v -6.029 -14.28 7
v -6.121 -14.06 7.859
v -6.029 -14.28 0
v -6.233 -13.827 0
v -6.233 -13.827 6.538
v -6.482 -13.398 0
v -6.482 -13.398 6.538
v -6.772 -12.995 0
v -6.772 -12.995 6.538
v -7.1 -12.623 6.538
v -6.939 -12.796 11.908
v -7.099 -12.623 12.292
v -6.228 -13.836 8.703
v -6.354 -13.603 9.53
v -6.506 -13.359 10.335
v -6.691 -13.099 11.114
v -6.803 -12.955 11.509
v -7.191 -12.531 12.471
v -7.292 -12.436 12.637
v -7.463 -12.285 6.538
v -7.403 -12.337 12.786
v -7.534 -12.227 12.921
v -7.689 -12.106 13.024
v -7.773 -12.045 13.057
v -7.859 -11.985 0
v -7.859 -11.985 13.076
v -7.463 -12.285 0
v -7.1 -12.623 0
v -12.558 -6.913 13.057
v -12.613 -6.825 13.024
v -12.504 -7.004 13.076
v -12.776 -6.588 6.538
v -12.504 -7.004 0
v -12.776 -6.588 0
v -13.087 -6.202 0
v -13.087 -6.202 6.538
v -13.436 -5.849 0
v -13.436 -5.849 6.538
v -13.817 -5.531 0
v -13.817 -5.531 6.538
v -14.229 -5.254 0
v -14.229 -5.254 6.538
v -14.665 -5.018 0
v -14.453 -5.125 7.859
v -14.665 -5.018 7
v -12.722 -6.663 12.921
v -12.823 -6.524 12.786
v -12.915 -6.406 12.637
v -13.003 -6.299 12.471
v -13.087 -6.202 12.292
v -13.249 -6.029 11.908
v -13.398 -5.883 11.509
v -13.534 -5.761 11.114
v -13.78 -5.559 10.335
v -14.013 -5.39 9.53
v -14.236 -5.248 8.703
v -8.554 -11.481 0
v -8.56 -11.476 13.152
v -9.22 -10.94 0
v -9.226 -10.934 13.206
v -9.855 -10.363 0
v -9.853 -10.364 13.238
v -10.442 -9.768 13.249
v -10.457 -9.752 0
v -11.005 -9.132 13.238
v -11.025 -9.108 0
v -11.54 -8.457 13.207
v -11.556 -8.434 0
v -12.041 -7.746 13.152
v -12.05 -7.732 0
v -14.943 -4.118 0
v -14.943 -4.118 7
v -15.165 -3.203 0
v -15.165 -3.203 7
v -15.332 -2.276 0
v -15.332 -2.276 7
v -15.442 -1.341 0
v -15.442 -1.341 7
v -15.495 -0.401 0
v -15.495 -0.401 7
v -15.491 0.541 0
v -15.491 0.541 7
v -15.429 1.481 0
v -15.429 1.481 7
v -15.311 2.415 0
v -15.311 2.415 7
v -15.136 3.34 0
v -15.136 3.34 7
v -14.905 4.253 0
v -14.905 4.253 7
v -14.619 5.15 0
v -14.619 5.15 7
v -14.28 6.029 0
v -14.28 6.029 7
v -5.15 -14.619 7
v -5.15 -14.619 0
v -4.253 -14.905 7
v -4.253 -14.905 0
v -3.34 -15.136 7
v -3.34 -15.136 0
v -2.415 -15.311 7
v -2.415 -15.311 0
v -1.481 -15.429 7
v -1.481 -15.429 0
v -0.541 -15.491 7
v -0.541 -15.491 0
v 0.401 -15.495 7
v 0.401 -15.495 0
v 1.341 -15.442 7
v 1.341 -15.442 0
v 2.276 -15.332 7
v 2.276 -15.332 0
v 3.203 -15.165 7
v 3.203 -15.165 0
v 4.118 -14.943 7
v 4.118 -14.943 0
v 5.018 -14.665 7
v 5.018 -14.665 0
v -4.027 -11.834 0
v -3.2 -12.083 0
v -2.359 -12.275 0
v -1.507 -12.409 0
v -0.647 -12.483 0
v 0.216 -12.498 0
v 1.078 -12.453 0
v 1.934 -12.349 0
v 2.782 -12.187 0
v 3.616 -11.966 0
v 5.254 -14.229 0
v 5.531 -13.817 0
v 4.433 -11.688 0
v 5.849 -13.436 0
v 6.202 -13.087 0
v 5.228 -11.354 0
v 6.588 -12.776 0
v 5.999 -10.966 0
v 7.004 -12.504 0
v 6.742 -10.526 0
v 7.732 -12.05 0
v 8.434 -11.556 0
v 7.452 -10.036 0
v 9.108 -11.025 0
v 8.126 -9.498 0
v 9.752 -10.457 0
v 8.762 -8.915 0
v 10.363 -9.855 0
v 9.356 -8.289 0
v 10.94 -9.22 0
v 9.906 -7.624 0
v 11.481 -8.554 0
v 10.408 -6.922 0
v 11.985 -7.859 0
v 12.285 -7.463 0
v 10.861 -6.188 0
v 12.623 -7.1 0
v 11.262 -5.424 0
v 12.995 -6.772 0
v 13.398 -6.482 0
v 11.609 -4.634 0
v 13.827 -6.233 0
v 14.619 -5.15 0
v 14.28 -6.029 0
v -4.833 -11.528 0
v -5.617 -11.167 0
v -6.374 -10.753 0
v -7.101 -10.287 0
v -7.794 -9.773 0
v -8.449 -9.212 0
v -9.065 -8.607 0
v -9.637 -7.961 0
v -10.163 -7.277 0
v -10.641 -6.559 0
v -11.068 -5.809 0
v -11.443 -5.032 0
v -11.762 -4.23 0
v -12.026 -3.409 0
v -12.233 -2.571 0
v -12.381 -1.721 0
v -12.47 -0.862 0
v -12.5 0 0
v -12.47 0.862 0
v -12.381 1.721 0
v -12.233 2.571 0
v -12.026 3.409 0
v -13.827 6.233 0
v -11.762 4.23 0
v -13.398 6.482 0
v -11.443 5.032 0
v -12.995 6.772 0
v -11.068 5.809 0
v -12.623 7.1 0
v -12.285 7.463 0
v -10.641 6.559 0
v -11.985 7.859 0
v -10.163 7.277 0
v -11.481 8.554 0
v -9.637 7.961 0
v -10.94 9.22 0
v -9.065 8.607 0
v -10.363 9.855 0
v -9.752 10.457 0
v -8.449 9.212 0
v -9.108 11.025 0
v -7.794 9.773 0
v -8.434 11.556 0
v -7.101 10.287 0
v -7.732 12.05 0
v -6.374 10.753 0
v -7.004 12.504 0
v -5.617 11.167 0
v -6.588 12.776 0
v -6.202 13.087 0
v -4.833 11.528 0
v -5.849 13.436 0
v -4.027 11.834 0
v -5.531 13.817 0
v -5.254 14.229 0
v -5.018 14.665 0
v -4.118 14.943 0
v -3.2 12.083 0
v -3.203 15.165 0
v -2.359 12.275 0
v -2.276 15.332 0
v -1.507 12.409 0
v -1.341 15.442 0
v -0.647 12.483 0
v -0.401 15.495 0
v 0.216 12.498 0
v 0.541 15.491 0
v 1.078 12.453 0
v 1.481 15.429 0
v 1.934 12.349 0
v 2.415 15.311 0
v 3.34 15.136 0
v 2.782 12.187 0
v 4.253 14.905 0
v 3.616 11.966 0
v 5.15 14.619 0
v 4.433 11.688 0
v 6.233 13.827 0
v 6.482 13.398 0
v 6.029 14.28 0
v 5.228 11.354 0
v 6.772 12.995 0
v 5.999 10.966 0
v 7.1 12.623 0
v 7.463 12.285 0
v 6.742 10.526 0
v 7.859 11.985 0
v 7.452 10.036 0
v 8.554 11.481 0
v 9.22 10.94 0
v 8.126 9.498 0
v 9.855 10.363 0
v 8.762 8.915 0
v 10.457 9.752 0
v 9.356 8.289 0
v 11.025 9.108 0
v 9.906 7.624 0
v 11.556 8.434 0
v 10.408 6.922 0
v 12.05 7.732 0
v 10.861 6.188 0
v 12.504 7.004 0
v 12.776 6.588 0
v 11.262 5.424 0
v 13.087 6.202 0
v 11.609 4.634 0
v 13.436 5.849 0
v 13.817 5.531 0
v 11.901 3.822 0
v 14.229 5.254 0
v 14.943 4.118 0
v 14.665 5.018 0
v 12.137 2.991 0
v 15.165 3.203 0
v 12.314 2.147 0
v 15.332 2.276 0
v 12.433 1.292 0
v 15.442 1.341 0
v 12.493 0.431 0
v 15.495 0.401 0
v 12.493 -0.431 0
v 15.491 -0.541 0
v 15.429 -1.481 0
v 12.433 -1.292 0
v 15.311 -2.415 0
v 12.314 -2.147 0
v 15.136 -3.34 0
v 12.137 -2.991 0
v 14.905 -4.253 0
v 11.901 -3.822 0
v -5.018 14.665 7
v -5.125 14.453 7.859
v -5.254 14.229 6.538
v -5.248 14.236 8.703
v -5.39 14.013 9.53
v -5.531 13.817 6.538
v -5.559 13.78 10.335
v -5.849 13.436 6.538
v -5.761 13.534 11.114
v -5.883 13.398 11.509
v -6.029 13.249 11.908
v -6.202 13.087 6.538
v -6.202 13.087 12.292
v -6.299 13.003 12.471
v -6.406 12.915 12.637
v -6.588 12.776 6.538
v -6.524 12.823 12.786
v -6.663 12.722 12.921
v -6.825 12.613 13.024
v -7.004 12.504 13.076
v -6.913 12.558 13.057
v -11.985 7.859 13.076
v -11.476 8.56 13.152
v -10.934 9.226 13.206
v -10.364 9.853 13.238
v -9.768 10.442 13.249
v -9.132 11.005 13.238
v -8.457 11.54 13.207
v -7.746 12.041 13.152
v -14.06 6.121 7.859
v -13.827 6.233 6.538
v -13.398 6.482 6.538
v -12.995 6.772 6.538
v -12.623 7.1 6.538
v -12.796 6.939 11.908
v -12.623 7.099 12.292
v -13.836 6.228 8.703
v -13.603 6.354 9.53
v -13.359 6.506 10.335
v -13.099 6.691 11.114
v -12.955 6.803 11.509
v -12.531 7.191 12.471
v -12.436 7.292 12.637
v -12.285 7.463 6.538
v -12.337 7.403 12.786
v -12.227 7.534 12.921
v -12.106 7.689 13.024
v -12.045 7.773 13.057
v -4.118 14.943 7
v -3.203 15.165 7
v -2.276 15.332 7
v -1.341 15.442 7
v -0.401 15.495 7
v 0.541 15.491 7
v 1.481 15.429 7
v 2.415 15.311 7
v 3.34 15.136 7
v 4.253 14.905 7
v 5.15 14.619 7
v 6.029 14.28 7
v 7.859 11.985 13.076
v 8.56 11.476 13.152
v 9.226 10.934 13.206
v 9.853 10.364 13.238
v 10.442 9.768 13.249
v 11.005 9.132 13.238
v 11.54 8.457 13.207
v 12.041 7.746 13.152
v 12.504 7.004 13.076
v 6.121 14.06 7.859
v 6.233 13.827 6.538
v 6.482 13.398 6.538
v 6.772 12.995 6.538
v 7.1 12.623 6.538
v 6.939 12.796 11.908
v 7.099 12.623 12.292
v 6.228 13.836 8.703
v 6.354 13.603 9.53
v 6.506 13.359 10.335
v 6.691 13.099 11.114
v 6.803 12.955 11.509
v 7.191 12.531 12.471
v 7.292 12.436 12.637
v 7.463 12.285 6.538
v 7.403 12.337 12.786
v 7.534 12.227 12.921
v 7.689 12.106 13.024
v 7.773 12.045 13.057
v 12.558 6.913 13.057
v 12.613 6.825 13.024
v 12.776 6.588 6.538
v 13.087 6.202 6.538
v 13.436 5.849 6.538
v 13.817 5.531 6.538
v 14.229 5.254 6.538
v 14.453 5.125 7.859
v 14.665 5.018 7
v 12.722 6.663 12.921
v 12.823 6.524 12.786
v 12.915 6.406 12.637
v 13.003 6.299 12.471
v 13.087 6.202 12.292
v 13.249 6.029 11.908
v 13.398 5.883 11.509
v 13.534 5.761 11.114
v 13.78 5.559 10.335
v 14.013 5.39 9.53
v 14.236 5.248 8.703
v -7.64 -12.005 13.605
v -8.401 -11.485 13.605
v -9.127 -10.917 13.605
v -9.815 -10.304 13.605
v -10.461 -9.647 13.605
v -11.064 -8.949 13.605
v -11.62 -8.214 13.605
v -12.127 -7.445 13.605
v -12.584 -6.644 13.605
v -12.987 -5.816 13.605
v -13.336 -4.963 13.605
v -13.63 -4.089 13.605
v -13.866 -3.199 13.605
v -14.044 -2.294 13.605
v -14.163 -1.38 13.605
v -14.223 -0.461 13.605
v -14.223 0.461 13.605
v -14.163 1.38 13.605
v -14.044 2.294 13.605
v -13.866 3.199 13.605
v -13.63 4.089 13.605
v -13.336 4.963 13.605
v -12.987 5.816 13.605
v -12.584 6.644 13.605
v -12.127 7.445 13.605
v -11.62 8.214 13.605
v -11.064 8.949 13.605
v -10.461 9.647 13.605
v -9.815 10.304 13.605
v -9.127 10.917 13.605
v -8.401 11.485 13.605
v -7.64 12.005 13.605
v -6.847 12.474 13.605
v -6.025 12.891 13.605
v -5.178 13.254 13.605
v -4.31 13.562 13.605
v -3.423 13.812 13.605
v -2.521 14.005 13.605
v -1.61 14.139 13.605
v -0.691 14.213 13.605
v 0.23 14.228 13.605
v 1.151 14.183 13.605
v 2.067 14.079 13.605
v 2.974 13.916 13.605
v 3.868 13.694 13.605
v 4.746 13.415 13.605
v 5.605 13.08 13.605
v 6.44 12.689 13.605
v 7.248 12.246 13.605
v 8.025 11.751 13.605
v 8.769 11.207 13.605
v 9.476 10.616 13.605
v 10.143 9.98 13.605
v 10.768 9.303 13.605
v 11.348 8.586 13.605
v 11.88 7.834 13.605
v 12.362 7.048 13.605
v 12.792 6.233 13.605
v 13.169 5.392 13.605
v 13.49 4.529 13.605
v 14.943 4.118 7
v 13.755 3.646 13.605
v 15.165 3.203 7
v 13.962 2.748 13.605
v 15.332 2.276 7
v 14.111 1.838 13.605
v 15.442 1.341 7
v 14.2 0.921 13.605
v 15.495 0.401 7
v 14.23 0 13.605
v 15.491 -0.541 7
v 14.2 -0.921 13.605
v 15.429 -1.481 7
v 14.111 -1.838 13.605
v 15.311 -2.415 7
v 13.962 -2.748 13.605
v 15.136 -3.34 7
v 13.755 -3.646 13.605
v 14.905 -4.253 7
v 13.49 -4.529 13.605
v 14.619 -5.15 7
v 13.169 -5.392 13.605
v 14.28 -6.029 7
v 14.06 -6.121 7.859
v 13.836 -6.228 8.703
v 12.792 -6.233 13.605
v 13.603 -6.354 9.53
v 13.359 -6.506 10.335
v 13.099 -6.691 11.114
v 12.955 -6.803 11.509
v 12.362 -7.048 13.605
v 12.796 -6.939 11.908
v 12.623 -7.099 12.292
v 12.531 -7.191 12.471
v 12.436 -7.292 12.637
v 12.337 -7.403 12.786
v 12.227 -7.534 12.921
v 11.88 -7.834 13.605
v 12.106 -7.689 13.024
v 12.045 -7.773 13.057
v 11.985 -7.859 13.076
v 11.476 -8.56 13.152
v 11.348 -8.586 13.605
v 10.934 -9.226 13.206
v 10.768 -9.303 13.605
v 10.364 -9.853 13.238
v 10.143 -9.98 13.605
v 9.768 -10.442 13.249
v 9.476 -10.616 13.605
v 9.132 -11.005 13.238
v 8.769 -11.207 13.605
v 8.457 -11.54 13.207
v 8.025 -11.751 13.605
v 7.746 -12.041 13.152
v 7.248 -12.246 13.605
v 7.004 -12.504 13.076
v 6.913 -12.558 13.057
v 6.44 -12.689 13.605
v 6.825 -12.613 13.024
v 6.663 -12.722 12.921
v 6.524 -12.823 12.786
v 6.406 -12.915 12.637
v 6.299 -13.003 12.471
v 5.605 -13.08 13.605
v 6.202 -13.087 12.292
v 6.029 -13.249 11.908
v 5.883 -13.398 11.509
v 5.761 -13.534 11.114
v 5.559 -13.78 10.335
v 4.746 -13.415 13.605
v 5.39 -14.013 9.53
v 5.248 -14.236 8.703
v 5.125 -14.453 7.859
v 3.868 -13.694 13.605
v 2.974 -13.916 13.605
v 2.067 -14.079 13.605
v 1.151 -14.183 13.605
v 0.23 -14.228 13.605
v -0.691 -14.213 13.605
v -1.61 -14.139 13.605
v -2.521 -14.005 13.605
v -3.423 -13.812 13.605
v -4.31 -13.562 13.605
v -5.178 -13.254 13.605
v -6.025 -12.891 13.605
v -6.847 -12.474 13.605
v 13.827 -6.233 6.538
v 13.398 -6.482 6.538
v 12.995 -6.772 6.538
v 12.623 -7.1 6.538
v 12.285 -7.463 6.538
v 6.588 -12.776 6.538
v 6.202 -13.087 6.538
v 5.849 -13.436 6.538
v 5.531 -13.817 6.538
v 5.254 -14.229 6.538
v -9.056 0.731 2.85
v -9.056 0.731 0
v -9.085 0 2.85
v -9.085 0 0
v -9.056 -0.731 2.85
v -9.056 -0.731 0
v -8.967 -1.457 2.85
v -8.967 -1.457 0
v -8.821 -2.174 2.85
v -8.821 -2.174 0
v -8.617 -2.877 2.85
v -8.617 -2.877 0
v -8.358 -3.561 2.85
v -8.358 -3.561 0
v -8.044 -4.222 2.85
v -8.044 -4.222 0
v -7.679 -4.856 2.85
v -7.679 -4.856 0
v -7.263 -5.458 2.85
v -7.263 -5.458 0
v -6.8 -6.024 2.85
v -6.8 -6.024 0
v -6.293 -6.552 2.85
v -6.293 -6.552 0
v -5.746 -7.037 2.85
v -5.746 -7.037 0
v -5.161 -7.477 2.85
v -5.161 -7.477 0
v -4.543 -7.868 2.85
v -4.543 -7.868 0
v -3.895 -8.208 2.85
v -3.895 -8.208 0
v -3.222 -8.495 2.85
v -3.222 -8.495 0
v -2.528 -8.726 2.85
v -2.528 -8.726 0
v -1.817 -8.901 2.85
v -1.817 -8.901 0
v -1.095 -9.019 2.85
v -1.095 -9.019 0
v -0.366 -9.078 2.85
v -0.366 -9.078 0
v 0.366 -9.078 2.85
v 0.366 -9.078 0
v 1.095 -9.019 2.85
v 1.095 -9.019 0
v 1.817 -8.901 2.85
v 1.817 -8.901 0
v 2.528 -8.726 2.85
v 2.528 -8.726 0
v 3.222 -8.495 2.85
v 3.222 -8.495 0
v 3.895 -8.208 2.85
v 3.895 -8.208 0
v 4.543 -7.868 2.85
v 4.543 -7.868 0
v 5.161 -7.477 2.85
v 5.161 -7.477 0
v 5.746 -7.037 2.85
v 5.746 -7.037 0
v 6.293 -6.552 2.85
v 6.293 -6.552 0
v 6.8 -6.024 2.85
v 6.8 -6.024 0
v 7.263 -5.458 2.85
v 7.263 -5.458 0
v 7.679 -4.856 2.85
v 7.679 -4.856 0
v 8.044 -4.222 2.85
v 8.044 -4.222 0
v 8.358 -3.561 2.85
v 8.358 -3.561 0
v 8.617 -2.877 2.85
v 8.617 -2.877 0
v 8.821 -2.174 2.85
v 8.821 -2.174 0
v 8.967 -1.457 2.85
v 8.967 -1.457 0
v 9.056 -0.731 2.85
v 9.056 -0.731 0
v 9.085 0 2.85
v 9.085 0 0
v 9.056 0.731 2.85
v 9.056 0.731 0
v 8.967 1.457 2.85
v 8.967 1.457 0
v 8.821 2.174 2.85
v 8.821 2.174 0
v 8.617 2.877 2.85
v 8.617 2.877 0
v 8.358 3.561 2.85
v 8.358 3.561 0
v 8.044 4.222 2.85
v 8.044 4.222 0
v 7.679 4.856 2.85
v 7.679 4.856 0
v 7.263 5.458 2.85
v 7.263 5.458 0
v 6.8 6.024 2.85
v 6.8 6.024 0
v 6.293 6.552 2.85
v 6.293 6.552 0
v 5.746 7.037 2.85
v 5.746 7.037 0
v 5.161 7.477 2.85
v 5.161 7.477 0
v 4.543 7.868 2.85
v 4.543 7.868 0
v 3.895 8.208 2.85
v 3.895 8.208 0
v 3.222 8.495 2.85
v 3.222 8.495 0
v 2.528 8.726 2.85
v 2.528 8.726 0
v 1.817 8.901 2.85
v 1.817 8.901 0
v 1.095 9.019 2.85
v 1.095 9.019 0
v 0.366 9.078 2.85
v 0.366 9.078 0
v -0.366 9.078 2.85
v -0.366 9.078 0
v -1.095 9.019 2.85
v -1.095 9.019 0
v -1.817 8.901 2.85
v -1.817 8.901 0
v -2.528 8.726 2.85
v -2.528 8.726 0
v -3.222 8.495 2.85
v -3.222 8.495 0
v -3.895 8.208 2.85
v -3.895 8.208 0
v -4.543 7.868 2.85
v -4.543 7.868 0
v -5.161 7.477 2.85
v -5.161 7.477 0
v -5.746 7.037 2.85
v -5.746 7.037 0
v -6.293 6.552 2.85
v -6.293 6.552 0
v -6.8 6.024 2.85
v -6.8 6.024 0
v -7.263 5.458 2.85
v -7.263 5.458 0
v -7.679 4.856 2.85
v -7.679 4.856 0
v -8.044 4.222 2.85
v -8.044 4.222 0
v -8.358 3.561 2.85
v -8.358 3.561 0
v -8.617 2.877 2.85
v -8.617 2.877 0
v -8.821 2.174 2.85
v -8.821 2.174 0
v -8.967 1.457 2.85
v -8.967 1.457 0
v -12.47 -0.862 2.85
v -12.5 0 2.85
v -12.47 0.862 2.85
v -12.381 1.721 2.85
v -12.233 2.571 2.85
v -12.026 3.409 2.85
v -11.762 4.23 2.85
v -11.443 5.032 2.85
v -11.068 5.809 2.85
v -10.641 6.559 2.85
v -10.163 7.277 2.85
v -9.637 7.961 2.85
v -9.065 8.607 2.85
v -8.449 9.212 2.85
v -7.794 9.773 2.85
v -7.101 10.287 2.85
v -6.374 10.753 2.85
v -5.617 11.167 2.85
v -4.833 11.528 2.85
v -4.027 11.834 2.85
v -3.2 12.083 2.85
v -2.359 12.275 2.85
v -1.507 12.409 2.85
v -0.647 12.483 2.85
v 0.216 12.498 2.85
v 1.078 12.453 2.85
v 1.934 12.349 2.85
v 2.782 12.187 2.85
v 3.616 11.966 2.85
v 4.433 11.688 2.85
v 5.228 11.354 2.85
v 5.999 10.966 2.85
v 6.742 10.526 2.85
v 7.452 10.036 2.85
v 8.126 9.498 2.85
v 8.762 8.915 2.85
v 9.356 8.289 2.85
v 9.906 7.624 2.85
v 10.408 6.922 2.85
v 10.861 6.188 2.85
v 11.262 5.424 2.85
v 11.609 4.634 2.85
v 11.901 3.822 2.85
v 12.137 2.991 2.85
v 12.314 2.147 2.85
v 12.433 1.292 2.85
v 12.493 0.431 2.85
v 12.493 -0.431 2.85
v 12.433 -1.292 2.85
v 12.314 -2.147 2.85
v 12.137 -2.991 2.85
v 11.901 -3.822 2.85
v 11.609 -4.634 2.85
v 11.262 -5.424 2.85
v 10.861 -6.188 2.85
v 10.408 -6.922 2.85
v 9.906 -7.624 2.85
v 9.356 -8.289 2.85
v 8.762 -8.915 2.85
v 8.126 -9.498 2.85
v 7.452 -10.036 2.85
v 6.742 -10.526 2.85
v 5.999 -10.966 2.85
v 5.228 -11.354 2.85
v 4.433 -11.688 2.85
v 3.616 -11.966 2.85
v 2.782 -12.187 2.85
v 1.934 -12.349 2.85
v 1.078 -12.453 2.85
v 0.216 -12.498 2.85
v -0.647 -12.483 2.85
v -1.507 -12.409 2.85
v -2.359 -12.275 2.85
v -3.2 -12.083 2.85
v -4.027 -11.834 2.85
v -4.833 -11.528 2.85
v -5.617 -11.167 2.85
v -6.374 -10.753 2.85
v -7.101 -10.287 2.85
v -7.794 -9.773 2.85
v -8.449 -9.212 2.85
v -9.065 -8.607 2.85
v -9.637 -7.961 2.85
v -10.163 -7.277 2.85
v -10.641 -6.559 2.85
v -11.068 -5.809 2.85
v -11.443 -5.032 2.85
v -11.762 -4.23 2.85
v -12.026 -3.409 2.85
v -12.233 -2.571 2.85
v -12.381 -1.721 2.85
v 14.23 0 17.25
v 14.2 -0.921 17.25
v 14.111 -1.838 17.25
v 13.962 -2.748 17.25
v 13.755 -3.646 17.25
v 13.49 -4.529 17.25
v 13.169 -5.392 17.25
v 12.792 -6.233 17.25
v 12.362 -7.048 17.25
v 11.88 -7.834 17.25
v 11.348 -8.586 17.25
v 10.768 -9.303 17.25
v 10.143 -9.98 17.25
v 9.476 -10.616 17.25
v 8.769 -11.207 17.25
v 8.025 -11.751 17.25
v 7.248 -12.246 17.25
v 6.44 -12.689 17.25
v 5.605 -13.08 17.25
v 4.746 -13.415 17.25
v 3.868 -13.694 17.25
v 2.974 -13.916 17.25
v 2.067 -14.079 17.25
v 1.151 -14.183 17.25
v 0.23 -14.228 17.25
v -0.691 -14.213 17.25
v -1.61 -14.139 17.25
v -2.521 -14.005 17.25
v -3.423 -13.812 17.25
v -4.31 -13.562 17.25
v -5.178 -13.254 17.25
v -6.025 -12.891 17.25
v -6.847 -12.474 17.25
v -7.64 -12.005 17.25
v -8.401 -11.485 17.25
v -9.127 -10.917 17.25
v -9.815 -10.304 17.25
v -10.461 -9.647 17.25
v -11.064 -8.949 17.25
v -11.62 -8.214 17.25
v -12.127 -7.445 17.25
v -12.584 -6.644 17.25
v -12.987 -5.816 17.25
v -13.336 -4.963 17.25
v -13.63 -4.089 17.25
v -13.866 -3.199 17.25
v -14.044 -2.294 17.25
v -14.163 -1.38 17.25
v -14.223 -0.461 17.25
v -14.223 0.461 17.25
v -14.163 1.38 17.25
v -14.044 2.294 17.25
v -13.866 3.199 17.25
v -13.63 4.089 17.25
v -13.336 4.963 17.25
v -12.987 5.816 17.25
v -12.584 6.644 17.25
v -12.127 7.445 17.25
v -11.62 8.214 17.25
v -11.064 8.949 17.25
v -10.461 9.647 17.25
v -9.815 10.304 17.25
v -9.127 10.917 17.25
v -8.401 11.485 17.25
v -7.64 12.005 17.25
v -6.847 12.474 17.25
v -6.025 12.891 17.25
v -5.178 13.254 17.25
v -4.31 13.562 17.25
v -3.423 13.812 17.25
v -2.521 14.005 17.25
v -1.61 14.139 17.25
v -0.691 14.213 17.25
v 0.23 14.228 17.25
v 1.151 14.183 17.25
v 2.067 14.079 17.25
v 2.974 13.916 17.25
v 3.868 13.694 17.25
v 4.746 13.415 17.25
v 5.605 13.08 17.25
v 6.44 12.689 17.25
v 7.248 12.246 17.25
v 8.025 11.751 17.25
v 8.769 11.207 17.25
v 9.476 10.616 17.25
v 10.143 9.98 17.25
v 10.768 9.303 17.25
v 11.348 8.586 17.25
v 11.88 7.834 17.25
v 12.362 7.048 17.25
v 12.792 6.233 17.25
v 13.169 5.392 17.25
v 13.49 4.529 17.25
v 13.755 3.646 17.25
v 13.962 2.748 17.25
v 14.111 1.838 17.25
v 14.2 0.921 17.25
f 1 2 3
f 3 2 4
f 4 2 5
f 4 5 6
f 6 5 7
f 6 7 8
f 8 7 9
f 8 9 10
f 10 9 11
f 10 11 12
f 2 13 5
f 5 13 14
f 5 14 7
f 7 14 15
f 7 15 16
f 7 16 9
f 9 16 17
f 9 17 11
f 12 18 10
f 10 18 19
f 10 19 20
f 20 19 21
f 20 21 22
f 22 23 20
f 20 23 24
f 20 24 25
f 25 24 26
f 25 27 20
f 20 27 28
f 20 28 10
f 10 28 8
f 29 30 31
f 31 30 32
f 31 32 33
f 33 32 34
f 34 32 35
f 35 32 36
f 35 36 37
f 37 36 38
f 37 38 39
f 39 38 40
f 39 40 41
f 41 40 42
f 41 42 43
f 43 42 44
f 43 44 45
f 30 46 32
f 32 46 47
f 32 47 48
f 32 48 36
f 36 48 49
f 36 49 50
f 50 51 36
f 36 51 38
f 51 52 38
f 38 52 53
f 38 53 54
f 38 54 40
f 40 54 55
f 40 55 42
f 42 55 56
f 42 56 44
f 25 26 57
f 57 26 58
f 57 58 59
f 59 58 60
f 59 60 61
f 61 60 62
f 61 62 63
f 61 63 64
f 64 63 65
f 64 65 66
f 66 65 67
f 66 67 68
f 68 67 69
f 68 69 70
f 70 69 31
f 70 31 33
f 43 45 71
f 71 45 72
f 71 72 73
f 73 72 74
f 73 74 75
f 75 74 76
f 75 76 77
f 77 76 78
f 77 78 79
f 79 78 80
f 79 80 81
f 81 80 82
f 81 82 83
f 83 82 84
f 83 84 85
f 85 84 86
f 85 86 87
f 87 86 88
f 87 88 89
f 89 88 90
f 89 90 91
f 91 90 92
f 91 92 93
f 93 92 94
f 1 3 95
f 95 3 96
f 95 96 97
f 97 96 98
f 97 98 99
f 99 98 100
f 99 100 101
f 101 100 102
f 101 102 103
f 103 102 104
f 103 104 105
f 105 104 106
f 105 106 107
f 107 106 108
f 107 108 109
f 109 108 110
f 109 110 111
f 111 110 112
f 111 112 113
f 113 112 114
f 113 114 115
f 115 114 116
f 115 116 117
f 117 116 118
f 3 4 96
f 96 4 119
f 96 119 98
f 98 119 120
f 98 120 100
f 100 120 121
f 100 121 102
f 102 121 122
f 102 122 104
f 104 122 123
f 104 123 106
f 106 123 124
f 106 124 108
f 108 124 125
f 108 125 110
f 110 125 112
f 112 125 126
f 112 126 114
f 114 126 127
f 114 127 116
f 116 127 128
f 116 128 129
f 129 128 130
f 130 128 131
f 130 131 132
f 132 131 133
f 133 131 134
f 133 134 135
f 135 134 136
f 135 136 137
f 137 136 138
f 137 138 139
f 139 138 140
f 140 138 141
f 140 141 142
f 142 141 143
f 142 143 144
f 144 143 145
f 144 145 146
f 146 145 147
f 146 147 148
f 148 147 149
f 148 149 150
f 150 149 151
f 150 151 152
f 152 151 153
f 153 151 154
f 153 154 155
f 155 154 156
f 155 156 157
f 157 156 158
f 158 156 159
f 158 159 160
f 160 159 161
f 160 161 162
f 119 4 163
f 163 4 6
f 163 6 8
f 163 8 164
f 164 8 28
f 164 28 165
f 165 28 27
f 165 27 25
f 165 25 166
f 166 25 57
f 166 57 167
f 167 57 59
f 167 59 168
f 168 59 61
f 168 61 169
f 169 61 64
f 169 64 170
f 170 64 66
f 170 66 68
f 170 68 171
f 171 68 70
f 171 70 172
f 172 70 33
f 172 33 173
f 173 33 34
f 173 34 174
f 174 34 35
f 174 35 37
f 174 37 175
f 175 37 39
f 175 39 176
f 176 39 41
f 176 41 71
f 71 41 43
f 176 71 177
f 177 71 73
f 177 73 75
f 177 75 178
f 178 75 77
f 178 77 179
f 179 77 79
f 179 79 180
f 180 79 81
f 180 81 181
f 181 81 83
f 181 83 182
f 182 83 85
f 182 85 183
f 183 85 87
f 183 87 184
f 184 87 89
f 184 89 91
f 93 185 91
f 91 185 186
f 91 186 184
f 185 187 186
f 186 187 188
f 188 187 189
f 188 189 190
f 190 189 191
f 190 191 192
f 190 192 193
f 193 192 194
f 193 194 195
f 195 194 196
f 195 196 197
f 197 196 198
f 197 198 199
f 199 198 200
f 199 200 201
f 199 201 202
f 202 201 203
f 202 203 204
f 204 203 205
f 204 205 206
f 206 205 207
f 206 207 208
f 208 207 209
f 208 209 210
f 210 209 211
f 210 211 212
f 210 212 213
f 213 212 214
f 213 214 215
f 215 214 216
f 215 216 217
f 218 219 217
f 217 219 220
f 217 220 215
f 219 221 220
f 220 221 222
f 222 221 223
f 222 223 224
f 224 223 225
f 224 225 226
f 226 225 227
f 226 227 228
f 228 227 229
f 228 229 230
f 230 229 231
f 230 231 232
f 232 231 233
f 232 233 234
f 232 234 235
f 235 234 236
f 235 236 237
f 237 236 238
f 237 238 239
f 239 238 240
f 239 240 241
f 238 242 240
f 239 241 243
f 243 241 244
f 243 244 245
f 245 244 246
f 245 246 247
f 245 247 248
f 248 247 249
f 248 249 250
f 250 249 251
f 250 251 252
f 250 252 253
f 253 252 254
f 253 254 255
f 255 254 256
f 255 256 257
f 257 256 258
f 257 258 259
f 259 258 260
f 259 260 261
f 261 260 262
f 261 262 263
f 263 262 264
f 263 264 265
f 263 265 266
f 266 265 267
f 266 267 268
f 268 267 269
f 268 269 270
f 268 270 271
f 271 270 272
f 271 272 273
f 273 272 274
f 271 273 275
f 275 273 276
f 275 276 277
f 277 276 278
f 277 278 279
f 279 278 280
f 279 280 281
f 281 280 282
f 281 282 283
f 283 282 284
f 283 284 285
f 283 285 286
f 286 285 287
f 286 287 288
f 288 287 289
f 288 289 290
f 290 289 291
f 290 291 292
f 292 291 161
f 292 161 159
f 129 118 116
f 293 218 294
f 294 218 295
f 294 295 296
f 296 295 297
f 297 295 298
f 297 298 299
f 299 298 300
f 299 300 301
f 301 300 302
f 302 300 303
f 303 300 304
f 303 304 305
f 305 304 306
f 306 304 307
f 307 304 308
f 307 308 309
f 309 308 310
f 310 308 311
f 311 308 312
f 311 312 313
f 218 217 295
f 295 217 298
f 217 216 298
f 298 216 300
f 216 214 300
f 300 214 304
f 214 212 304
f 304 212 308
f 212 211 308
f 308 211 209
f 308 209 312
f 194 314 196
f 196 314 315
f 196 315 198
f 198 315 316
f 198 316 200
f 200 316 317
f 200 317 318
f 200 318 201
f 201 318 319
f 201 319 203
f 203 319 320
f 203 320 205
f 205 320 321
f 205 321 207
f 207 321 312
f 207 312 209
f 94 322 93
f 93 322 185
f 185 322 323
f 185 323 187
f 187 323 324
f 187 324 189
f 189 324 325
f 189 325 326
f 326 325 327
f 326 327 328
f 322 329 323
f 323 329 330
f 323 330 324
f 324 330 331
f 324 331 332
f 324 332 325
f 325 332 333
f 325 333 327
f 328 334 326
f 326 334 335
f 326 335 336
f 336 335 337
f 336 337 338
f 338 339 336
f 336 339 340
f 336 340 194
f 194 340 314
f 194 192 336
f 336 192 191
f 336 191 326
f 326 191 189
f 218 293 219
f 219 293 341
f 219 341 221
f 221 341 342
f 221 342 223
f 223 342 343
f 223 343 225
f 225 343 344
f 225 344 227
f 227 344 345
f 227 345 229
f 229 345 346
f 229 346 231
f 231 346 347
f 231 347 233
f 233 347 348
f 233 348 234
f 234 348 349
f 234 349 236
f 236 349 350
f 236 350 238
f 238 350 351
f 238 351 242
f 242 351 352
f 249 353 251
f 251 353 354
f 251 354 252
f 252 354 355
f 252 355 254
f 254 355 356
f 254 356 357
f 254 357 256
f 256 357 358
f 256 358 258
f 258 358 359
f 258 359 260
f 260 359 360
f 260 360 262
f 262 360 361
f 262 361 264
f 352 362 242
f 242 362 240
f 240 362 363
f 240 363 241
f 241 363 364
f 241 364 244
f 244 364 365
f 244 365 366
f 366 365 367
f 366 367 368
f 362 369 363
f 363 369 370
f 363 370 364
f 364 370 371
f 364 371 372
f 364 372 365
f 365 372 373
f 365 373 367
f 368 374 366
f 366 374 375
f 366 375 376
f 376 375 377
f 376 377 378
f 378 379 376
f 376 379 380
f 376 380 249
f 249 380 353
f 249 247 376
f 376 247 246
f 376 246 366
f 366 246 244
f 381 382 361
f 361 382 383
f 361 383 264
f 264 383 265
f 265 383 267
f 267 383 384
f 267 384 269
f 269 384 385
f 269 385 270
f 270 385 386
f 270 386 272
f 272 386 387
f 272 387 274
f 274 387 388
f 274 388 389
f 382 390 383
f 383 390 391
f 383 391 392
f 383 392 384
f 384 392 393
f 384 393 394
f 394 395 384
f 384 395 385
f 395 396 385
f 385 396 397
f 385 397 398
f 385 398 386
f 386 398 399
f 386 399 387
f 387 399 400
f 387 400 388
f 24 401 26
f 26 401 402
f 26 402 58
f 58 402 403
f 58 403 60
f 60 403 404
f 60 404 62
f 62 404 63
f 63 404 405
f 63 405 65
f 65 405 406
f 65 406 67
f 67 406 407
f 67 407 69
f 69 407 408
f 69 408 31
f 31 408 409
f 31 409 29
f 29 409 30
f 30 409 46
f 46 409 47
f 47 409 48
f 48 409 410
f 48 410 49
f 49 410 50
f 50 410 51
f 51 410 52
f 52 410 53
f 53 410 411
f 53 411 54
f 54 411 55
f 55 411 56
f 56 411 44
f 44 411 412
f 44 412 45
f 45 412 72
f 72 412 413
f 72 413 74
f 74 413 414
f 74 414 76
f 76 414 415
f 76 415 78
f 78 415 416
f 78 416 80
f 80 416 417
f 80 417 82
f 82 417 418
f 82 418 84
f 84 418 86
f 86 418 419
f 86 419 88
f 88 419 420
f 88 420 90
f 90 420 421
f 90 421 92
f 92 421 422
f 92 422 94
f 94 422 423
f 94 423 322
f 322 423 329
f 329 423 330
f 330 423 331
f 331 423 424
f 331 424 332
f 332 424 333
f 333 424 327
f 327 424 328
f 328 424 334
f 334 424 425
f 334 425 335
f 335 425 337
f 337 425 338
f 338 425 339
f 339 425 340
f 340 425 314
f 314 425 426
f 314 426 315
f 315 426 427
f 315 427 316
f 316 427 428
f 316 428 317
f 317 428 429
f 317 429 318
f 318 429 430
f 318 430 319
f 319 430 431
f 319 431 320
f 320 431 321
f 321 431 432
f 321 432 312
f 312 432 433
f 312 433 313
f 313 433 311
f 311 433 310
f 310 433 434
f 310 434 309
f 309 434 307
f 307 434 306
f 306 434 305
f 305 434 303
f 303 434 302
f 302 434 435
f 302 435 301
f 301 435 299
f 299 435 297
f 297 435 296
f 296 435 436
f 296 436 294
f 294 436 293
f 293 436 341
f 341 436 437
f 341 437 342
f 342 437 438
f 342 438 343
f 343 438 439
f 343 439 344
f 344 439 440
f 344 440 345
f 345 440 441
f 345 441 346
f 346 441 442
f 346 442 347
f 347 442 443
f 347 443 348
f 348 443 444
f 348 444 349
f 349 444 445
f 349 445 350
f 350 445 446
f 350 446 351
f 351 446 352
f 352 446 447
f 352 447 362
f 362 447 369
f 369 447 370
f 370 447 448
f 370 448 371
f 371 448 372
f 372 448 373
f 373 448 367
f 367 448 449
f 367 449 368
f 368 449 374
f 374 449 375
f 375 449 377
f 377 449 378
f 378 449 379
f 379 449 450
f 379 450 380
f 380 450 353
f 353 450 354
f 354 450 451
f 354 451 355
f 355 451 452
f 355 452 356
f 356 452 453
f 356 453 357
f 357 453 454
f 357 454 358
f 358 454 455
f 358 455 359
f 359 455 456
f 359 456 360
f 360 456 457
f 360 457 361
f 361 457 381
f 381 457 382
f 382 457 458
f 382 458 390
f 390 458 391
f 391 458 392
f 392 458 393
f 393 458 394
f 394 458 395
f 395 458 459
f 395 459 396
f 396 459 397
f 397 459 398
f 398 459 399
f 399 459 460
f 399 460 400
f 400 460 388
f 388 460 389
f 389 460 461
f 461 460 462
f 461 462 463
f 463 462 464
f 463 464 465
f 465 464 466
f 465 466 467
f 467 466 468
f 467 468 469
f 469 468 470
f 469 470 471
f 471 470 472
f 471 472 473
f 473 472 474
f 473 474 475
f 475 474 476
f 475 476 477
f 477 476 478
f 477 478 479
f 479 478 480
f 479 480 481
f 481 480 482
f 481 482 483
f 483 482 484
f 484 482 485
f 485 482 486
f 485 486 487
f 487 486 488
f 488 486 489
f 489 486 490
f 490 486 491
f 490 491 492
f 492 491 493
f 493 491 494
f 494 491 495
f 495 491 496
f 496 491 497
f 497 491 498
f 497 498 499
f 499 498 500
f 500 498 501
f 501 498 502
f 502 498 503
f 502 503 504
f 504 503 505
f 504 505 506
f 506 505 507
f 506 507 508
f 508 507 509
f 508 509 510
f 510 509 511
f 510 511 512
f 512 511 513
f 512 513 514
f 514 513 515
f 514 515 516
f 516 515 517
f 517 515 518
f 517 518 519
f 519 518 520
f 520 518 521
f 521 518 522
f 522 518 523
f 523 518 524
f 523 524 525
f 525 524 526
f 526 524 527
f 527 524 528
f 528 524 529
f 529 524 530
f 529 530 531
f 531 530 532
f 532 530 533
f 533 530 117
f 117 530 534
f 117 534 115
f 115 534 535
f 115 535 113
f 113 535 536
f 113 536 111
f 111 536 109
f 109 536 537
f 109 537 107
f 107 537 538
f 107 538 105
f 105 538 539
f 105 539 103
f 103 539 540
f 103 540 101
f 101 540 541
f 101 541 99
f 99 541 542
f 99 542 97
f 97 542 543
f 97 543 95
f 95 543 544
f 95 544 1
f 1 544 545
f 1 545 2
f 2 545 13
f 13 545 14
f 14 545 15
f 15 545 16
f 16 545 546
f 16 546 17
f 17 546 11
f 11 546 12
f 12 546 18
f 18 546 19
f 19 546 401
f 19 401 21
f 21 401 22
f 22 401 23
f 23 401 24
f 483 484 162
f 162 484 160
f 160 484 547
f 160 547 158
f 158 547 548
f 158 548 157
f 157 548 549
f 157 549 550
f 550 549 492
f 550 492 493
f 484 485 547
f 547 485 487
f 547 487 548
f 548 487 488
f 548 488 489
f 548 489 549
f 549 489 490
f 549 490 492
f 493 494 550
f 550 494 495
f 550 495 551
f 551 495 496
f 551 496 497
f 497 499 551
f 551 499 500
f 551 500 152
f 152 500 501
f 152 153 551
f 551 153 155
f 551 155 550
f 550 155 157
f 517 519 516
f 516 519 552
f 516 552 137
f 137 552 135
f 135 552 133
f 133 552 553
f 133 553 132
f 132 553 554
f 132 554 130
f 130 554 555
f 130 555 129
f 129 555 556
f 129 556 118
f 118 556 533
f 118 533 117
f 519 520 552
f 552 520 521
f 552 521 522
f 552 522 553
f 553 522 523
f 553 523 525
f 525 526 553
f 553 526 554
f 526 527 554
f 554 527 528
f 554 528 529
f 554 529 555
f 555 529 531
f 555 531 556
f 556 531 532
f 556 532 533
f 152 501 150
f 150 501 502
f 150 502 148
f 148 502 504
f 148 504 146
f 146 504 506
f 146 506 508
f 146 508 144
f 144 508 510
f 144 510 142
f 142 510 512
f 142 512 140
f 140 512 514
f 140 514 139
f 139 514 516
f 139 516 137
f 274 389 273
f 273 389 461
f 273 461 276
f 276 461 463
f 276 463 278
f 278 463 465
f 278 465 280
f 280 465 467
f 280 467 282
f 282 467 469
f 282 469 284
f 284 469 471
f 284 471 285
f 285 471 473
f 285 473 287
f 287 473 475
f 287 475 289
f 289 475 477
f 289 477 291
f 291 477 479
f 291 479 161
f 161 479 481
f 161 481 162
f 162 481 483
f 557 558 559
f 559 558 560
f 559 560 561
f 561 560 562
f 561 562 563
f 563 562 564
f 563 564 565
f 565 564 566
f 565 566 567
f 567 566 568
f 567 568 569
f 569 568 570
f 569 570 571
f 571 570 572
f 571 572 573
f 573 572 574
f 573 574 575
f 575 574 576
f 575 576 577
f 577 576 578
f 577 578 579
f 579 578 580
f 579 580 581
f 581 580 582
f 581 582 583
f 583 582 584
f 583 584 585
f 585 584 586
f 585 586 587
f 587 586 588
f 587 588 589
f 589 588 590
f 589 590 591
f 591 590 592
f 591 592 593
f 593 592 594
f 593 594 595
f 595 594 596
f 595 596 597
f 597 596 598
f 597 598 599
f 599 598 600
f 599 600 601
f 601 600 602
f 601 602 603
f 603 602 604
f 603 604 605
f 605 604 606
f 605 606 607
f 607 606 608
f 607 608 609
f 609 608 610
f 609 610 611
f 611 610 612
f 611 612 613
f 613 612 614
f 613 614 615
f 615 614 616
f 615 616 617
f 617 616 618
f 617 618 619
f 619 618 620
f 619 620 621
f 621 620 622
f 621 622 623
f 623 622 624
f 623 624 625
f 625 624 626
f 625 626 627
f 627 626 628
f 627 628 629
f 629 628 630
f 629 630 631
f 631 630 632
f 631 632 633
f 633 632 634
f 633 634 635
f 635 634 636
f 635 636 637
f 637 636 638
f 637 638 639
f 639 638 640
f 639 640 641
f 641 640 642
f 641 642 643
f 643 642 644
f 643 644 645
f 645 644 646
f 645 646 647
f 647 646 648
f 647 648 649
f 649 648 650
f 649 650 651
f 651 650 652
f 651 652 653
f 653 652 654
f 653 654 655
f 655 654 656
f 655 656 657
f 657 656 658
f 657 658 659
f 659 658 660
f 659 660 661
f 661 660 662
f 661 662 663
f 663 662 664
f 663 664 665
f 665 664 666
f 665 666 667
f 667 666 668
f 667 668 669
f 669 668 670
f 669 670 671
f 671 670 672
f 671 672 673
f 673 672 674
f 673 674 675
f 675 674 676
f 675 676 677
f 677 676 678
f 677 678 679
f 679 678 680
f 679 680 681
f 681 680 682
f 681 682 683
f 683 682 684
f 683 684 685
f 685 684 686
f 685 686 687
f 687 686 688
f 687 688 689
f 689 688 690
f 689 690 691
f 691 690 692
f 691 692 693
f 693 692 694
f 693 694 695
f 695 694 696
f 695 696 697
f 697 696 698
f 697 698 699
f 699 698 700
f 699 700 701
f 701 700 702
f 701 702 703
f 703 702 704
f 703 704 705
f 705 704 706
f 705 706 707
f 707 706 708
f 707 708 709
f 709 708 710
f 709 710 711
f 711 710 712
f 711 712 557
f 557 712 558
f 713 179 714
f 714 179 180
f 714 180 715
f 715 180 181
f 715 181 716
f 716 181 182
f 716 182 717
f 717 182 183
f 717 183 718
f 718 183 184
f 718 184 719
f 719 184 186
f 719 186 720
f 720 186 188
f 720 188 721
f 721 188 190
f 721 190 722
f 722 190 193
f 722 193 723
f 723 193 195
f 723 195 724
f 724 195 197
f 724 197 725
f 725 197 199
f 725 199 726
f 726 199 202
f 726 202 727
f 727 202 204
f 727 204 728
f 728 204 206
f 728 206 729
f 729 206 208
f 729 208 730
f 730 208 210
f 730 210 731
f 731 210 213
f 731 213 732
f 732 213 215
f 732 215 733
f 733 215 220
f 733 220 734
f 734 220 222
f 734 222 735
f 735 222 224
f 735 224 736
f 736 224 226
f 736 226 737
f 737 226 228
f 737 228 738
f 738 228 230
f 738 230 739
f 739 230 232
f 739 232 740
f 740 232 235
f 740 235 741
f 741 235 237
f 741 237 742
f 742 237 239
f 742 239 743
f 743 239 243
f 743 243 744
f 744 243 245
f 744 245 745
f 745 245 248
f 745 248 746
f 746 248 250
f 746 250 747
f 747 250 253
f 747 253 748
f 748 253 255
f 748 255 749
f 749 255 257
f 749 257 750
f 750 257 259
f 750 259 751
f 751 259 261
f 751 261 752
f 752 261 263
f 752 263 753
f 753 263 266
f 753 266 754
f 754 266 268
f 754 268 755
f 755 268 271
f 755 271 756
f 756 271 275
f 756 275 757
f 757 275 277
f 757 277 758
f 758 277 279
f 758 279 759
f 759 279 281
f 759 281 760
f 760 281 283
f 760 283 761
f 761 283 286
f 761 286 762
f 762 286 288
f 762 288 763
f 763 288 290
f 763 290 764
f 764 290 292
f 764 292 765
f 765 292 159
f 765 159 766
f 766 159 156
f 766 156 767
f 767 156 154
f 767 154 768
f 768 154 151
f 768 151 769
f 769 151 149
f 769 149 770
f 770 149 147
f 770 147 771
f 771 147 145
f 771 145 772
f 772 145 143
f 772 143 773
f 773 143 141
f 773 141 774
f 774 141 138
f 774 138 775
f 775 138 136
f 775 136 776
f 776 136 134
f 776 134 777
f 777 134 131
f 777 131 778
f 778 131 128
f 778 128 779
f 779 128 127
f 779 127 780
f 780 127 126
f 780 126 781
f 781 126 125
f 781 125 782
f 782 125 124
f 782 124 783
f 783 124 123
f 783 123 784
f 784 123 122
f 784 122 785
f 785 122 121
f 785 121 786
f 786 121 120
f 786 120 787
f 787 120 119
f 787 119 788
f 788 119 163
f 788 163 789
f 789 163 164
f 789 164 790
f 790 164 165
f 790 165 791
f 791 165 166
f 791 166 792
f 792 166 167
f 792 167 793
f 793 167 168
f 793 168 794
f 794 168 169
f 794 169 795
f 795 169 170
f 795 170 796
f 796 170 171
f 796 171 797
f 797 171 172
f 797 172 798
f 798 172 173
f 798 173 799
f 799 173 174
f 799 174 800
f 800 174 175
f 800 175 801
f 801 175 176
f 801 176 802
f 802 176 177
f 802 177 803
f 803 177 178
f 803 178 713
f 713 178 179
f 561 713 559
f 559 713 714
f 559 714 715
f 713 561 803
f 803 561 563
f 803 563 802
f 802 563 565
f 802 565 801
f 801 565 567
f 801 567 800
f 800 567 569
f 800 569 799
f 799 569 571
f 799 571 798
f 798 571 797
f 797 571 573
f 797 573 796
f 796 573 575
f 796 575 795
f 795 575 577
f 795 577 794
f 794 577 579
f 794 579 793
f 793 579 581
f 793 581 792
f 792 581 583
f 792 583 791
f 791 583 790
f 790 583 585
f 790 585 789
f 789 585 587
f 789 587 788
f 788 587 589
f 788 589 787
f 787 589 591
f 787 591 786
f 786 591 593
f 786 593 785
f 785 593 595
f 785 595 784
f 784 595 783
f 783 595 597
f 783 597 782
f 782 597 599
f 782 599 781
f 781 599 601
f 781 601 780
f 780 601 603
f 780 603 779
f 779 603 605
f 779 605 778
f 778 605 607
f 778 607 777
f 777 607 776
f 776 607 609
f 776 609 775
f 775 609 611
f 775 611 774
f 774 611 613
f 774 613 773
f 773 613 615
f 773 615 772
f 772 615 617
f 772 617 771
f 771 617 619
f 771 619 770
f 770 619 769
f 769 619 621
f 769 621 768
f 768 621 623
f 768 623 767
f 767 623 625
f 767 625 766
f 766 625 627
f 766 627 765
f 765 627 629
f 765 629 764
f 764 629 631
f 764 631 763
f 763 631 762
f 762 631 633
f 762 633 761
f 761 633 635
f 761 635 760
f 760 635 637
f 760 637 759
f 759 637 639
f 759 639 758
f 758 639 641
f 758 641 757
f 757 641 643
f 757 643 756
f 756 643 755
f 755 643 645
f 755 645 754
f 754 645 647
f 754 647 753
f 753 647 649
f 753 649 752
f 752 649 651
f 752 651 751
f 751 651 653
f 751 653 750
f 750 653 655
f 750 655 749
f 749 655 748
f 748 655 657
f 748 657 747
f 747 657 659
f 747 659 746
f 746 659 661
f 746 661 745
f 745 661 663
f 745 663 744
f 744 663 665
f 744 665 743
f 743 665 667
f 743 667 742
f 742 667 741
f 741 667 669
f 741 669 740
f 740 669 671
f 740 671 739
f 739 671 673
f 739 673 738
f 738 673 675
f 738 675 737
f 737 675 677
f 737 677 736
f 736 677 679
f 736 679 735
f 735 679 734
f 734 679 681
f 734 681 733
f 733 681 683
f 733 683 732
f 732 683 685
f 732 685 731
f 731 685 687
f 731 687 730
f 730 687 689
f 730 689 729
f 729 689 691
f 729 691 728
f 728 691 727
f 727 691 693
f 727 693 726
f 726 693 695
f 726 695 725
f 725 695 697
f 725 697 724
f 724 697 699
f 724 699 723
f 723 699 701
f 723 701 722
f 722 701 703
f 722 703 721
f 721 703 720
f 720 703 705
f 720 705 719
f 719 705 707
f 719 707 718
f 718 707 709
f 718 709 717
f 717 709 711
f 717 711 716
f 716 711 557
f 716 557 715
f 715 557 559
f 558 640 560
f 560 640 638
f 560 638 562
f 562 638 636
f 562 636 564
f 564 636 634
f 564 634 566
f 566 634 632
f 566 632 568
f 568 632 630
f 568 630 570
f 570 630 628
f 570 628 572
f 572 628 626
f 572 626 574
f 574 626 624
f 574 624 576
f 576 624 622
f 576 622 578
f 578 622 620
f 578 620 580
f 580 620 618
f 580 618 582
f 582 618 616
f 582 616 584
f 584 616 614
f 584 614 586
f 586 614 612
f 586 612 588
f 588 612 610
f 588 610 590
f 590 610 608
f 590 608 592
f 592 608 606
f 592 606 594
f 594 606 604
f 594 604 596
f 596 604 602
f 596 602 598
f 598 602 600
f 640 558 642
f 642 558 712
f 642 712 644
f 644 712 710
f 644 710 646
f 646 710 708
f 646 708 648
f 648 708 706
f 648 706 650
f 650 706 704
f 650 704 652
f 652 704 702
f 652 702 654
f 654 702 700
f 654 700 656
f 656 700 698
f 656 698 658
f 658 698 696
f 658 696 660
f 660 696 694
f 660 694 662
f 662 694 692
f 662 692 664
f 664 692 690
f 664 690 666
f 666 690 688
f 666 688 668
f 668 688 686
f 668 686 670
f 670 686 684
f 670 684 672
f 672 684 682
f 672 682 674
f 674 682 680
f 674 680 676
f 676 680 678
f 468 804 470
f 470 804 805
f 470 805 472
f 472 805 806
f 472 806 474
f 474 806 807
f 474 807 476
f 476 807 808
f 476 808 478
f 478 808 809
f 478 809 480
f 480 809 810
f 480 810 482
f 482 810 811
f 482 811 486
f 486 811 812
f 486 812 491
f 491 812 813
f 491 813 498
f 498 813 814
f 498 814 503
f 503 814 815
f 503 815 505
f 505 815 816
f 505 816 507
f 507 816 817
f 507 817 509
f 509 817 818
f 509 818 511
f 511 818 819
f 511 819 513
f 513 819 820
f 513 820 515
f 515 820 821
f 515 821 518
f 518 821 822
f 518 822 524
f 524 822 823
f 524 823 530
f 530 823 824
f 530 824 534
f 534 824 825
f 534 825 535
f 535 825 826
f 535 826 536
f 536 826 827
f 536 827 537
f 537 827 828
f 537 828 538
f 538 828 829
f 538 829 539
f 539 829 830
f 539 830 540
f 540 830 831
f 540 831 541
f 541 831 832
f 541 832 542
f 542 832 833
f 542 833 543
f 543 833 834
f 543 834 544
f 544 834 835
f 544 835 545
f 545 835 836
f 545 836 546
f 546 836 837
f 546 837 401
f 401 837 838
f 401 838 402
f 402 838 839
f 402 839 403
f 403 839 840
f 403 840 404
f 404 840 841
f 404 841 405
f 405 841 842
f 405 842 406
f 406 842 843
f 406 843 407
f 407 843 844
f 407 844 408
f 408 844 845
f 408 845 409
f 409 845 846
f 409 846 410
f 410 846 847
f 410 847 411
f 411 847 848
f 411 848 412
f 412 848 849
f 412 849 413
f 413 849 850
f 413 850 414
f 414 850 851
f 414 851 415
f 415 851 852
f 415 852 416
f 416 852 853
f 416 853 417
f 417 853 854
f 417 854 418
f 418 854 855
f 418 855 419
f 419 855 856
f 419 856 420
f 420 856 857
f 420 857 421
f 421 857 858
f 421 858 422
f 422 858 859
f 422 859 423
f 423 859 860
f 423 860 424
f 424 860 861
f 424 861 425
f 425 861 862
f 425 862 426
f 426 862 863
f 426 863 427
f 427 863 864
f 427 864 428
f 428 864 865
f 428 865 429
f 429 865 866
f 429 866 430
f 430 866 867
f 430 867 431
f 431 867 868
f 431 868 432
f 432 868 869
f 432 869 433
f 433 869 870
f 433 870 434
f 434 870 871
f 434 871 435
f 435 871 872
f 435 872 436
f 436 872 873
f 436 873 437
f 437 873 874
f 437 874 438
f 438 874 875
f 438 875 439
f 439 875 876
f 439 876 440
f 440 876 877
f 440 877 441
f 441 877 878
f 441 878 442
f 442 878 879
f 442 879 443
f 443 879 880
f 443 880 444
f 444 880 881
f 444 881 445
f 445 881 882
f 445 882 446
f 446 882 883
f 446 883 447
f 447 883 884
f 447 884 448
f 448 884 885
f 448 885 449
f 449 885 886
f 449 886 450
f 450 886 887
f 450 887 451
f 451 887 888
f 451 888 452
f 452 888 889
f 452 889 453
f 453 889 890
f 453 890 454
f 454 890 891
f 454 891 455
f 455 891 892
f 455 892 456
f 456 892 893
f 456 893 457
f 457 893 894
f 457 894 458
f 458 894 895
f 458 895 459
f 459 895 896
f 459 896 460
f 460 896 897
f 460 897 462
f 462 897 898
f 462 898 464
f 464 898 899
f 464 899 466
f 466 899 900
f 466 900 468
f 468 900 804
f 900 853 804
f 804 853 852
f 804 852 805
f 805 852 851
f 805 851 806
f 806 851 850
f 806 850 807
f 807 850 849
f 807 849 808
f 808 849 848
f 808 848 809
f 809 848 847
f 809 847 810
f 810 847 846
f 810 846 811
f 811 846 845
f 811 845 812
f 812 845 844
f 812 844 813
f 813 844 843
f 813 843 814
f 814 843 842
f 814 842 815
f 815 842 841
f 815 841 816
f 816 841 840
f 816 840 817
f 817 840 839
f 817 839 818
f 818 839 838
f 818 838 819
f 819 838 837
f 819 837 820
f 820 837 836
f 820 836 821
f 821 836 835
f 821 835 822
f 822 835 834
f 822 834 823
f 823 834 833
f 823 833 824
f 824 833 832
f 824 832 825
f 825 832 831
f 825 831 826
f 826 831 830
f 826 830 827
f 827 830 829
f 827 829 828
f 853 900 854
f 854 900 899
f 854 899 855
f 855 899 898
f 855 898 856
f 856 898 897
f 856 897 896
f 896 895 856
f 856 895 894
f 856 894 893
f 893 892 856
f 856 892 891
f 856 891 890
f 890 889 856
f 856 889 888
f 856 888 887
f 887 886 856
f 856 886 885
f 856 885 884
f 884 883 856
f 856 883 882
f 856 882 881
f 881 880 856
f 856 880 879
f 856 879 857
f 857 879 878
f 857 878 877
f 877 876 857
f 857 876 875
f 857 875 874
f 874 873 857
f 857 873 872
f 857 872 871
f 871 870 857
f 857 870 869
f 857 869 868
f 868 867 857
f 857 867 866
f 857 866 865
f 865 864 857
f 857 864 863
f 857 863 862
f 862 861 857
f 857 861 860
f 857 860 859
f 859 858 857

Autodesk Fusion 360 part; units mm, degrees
sketch "Sketch4" plane through (0, 0, 0) normal (0, 0, 1) x (-1, 0, 0)
  circle A0 centre (0, 0) radius 15.7
  arc A1 (6.1849, 14.4304) -> (7.9716, 12.1501) centre (10.6805, 16.1127) ccw
  arc A2 (6.1849, 14.4304) -> (-5.1632, 14.8267) centre (0, 0) ccw
  arc A3 (-7.1047, 12.6765) -> (-5.1632, 14.8267) centre (-9.5305, 16.8184) ccw
  arc A4 (-7.1047, 12.6765) -> (-12.1501, 7.9716) centre (0.8594, -0.9216) ccw
  arc A5 (-14.4304, 6.1849) -> (-12.1501, 7.9716) centre (-16.1127, 10.6805) ccw
  arc A6 (-14.4304, 6.1849) -> (-14.8267, -5.1632) centre (0, 0) ccw
  arc A7 (-12.6765, -7.1047) -> (-14.8267, -5.1632) centre (-16.8184, -9.5305) ccw
  arc A8 (-12.6765, -7.1047) -> (-7.9716, -12.1501) centre (0.9216, 0.8594) ccw
  arc A9 (-6.1849, -14.4304) -> (-7.9716, -12.1501) centre (-10.6805, -16.1127) ccw
  arc A10 (-6.1849, -14.4304) -> (5.1632, -14.8267) centre (0, 0) ccw
  arc A11 (7.1047, -12.6765) -> (5.1632, -14.8267) centre (9.5305, -16.8184) ccw
  arc A12 (7.1047, -12.6765) -> (12.1501, -7.9716) centre (-0.8594, 0.9216) ccw
  arc A13 (14.4304, -6.1849) -> (12.1501, -7.9716) centre (16.1127, -10.6805) ccw
  arc A14 (14.4304, -6.1849) -> (14.8267, 5.1632) centre (0, 0) ccw
  arc A15 (12.6765, 7.1047) -> (14.8267, 5.1632) centre (16.8184, 9.5305) ccw
  arc A16 (12.6765, 7.1047) -> (7.9716, 12.1501) centre (-0.9216, -0.8594) ccw
  dimension "d11" = 31.4
sketch "Sketch1" plane through (0, 0, 0) normal (0, 1, 0) x (1, 0, 0)
  line L0 (0, 0) -> (0, -17.25)
  line L1 (0, 0) -> (15.5, 0)
  line L2 (15.5, 0) -> (15.5, -7)
  line L3 (15.5, -7) -> (14.23, -13.605)
  line L4 (14.23, -13.605) -> (14.23, -17.25)
  line L5 (14.23, -17.25) -> (0, -17.25)
  dimension "d1" = 15.5
  dimension "d2" = 14.23
  dimension "d3" = 3.645
  dimension "d4" = 7
  dimension "d5" = 17.25
revolve "Revolve1" add sketch "Sketch1" angle 360 about axis through (0, 0, 1.75) along (0, 0, 1)
sketch "Sketch2" plane through (0, 0, 0) normal (0, 0, -1) x (1, 0, 0)
  circle A0 centre (0, 0) radius 15.5
  circle A1 centre (0, 0) radius 9.085
  circle A2 centre (0, 0) radius 12.5
  line L0 (0, 0) -> (26.4938, 0) construction
  line L1 (0, 0) -> (0, 20.2896) construction
  circle A3 centre (9.5305, 16.8184) radius 5
  circle A4 centre (16.1127, 10.6805) radius 5
  line L2 (0, 0) -> (18.26, 19.5815) construction
  line L3 (9.5305, 16.8184) -> (16.1127, 10.6805)
  arc A5 (11.9849, 7.8588) -> (7.0036, 12.504) centre (-0.8594, -0.9216) ccw
  line L4 (12.9405, 20.4752) -> (19.5227, 14.3372)
  dimension "d7" = 18.17
  dimension "d8" = 25
  dimension "d12" = 10
  dimension "d13" = 9
  dimension "d14" = 18.8
  dimension "d24" = 47
extrude "Extrude1" cut sketch "Sketch2" against normal blind 2.85 contours A2
extrude "Extrude2" cut sketch "Sketch2" against normal blind 22 contours A0 A4 | A0 A3 A4 | A0 A3 A4 | A0 A3 | A0 A3 A4 A5 | A0 A3 A4 | A3 A4 L4 | A3 A4 L3 | A3 A4 L3 picked at (10.0669, 10.6715)
pattern_circular "C-Pattern1" count 4 over 360 about axis through (0, 0, 1.75) along (0, 0, 1) of "Extrude2"
sketch "Sketch3" plane through (0, 0, 17.25) normal (0, 0, 1) x (-1, 0, 0)
  circle A0 centre (0, 0) radius 13.175
  circle A1 centre (0, 0) radius 14.23
  dimension "d19" = 26.35
extrude "Extrude4" [suppressed]
equation "d1 = ( 31 / 2 ) * 1 mm"
equation "d2 = ( 28.46 / 2 ) * 1 mm"
